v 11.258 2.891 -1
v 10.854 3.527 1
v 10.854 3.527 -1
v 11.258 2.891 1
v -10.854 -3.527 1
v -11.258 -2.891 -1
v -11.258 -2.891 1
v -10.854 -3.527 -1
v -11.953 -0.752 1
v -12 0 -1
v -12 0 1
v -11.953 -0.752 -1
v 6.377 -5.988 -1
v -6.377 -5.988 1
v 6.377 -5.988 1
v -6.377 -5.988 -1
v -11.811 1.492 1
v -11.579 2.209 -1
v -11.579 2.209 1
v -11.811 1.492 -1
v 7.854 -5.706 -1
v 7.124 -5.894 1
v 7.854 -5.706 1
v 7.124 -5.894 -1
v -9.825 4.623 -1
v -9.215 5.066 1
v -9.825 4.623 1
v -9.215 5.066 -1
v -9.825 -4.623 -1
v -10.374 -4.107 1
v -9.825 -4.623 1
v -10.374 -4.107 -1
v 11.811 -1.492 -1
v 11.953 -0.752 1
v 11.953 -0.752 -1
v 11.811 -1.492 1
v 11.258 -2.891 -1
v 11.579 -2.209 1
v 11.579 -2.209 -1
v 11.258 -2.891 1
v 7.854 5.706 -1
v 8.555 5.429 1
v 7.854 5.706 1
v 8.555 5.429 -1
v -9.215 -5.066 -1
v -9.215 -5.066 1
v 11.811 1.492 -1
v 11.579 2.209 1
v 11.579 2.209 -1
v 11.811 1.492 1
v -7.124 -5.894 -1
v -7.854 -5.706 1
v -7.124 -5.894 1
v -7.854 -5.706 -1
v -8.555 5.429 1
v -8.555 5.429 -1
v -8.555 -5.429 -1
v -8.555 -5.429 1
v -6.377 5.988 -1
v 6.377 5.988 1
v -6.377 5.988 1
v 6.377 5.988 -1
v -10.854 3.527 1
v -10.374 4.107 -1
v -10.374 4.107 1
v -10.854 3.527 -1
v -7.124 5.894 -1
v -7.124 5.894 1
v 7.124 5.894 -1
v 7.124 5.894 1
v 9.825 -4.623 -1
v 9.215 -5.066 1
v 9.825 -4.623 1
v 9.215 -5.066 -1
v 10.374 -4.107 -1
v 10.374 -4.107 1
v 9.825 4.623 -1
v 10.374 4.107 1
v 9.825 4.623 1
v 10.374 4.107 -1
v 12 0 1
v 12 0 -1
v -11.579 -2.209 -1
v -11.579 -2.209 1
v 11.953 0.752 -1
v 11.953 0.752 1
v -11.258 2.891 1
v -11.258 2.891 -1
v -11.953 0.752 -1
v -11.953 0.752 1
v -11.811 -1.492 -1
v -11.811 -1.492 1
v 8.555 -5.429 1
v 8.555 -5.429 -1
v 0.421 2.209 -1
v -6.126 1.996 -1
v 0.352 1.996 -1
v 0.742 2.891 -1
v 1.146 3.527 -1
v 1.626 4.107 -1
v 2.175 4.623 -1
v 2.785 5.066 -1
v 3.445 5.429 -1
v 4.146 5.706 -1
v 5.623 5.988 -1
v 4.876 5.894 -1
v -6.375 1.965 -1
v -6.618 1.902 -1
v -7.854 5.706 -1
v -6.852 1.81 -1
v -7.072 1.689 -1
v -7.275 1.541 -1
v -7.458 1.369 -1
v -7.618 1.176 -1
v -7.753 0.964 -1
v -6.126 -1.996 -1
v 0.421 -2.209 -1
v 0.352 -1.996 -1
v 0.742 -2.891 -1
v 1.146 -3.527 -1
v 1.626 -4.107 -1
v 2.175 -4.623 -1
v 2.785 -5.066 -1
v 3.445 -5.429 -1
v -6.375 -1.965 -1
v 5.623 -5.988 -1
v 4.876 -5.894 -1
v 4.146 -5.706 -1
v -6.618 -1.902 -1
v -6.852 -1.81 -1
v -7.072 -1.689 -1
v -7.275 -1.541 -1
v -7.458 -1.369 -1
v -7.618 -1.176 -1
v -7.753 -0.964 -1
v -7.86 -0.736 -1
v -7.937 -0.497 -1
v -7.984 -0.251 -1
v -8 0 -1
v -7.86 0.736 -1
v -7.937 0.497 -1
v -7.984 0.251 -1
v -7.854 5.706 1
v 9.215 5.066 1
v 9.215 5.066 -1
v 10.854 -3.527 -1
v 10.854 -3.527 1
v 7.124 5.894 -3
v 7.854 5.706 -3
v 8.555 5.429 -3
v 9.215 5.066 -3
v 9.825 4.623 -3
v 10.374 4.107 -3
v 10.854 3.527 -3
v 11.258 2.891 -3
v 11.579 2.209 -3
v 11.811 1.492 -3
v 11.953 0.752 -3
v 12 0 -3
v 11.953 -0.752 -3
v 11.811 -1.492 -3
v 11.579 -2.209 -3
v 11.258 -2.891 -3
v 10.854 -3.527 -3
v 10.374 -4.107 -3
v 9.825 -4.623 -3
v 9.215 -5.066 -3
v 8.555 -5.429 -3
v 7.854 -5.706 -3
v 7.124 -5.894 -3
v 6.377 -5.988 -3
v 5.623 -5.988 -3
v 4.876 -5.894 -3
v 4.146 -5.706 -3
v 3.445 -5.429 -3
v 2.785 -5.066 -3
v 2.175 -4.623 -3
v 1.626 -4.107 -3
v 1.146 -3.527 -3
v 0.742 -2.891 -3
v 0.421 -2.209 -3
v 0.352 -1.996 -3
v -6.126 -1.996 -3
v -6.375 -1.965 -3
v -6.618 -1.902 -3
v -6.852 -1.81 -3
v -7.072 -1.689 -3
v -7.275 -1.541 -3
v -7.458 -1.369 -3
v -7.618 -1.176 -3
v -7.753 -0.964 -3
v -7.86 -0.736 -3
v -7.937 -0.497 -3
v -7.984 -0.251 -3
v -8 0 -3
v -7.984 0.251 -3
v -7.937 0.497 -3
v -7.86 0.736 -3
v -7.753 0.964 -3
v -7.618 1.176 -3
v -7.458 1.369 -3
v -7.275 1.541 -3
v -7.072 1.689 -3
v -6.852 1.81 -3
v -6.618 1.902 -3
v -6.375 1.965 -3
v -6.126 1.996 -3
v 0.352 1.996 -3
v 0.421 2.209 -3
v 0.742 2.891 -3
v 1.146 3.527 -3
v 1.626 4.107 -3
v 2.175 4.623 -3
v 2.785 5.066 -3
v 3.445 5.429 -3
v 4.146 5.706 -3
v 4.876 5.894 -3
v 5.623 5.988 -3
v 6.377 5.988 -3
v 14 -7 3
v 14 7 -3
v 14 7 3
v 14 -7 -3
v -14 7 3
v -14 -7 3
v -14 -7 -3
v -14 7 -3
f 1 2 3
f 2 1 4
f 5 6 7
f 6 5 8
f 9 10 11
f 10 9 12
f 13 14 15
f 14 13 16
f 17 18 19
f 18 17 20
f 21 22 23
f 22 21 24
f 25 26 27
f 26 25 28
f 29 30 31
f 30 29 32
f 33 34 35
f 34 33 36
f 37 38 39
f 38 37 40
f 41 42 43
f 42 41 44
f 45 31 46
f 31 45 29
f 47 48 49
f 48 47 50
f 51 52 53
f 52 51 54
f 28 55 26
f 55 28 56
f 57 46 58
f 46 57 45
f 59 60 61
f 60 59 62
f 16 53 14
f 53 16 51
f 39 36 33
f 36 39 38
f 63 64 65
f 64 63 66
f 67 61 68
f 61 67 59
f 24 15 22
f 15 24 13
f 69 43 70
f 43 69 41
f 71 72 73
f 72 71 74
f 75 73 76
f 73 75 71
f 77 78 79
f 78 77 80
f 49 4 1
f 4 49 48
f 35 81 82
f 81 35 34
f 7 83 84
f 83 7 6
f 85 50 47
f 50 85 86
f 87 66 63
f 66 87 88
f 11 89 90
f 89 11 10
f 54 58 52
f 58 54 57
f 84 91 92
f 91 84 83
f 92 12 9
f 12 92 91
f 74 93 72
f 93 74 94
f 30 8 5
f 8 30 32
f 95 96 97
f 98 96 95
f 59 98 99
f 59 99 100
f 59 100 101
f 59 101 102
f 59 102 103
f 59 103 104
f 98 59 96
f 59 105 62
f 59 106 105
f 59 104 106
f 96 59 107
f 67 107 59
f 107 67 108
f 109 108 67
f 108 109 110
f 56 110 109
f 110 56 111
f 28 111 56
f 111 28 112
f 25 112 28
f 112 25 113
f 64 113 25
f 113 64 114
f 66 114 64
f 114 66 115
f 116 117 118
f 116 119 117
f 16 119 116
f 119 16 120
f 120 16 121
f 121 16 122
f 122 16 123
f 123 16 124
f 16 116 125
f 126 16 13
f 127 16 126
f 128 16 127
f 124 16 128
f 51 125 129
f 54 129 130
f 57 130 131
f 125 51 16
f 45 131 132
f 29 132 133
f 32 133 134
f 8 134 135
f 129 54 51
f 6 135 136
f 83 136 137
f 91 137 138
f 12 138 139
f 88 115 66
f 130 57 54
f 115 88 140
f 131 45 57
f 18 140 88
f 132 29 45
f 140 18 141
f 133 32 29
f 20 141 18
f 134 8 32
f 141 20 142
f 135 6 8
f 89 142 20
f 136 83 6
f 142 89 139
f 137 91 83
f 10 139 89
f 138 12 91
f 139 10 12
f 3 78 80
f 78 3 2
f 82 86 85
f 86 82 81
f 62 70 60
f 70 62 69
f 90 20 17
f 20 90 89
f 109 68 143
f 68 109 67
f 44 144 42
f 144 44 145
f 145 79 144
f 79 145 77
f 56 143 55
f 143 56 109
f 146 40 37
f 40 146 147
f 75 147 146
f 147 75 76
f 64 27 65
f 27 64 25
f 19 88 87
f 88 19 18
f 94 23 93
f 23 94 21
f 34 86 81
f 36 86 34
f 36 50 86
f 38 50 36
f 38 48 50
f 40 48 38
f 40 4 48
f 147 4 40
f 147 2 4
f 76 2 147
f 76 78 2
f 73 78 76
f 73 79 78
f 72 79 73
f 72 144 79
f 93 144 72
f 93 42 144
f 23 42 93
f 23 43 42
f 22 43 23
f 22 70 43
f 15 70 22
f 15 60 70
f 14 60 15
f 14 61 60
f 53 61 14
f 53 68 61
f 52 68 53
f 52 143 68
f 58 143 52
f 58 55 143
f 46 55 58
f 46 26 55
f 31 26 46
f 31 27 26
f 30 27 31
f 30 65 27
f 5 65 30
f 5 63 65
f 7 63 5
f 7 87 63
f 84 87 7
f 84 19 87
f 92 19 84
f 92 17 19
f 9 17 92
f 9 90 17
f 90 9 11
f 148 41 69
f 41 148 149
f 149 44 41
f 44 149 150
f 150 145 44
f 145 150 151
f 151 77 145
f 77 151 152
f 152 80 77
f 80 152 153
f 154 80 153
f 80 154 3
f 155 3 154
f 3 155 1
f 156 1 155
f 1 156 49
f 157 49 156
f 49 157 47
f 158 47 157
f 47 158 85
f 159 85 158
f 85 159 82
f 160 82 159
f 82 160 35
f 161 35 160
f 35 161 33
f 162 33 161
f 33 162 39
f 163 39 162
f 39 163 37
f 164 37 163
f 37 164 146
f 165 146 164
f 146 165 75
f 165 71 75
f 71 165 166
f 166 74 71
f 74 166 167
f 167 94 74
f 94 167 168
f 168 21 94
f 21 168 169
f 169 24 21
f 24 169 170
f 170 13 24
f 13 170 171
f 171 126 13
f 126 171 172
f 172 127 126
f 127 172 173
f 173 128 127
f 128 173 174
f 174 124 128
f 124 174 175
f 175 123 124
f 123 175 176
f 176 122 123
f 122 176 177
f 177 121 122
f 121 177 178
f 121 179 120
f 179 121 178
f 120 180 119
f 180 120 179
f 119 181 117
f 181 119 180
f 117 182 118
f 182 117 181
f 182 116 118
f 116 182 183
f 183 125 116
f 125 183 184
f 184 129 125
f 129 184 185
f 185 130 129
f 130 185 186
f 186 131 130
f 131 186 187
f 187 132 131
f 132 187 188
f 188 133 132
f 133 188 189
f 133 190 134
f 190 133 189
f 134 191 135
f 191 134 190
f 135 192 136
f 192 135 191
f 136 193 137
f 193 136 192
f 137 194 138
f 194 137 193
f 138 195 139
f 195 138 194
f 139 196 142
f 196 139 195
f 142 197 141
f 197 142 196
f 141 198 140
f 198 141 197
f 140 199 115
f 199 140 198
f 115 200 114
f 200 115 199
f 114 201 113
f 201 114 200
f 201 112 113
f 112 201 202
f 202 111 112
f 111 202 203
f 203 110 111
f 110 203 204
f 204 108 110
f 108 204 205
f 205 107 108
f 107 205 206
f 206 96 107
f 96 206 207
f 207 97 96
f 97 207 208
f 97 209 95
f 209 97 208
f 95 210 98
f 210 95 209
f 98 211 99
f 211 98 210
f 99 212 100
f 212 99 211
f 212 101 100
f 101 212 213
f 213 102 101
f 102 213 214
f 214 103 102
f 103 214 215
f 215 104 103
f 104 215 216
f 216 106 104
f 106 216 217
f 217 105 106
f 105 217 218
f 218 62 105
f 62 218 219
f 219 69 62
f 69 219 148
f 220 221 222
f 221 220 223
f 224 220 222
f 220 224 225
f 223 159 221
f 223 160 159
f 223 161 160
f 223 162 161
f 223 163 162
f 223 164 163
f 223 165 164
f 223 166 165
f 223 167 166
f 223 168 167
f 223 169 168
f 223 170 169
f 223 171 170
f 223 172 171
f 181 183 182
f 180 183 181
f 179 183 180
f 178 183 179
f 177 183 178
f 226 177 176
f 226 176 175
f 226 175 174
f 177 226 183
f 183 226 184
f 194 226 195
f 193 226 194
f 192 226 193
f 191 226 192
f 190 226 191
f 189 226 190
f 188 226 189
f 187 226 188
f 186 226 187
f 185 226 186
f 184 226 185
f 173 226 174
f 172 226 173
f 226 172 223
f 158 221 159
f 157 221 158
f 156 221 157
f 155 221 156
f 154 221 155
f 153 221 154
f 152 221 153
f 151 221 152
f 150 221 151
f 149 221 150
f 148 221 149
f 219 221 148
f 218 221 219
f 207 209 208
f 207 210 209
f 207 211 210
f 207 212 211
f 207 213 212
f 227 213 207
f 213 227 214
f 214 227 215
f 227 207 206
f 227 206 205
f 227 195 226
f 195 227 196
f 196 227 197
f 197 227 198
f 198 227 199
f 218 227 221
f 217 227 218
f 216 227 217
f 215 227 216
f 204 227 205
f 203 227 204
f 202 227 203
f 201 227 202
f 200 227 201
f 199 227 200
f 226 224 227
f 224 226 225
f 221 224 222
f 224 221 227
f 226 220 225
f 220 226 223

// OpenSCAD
/*
  Simple nail key (for hanging things on the wall from a nail)

  author: Christopher O'Brien  <obriencj@gmail.com>
  license: GPL v3
*/



/**
   subtracts a nailkey from child object (as a union)
 */
module with_nailkey(pos=[0, 0, 0], rot=[0, 0, 0]) {
     difference() {
	  union() {
	       children();
	  };

	  translate(pos) {
	       rotate(rot) {
		    nailkey();
	       };
	  };
     };
}


/**
   the inverse shape for a nailkey. Subtract this shape to make a hole
   appropriate for slotting a nail head for wall mounting.
 */
module nailkey($fn=50) {
     thick = 2;

     nail_head = 12;
     nail_shaft = 4;

     nail_head_r = nail_head / 2;
     nail_shaft_r = nail_shaft / 2;

     linear_extrude(thick) {
	  hull() {
	       translate([-nail_head_r, 0]) {
		    circle(nail_head_r);
	       };
	       translate([nail_head_r, 0]) {
		    circle(nail_head_r);
	       };
	  };
     };

     // we want to ensure it pokes a hole through things, so make this
     // protrosion extra long
     linear_extrude(thick + 10) {
	  hull() {
	       translate([-nail_head_r, 0]) {
		    circle(nail_shaft_r);
	       };
	       translate([nail_head_r, 0]) {
		    circle(nail_shaft_r);
	       };
	  };
	  translate([nail_head_r, 0]) {
	       circle(nail_head_r);
	  };
     };
}


module nailkey_block() {
// demo piece, printed face-down. Very useful for gluing into objects,
// just leave a 30 x 18 space and then glue this block into it.
     with_nailkey(rot=[180, 0, 0], pos=[0, 0, 1]) {
	  cube([28, 14, 6], true);
     }
};


nailkey_block();


// The end.
